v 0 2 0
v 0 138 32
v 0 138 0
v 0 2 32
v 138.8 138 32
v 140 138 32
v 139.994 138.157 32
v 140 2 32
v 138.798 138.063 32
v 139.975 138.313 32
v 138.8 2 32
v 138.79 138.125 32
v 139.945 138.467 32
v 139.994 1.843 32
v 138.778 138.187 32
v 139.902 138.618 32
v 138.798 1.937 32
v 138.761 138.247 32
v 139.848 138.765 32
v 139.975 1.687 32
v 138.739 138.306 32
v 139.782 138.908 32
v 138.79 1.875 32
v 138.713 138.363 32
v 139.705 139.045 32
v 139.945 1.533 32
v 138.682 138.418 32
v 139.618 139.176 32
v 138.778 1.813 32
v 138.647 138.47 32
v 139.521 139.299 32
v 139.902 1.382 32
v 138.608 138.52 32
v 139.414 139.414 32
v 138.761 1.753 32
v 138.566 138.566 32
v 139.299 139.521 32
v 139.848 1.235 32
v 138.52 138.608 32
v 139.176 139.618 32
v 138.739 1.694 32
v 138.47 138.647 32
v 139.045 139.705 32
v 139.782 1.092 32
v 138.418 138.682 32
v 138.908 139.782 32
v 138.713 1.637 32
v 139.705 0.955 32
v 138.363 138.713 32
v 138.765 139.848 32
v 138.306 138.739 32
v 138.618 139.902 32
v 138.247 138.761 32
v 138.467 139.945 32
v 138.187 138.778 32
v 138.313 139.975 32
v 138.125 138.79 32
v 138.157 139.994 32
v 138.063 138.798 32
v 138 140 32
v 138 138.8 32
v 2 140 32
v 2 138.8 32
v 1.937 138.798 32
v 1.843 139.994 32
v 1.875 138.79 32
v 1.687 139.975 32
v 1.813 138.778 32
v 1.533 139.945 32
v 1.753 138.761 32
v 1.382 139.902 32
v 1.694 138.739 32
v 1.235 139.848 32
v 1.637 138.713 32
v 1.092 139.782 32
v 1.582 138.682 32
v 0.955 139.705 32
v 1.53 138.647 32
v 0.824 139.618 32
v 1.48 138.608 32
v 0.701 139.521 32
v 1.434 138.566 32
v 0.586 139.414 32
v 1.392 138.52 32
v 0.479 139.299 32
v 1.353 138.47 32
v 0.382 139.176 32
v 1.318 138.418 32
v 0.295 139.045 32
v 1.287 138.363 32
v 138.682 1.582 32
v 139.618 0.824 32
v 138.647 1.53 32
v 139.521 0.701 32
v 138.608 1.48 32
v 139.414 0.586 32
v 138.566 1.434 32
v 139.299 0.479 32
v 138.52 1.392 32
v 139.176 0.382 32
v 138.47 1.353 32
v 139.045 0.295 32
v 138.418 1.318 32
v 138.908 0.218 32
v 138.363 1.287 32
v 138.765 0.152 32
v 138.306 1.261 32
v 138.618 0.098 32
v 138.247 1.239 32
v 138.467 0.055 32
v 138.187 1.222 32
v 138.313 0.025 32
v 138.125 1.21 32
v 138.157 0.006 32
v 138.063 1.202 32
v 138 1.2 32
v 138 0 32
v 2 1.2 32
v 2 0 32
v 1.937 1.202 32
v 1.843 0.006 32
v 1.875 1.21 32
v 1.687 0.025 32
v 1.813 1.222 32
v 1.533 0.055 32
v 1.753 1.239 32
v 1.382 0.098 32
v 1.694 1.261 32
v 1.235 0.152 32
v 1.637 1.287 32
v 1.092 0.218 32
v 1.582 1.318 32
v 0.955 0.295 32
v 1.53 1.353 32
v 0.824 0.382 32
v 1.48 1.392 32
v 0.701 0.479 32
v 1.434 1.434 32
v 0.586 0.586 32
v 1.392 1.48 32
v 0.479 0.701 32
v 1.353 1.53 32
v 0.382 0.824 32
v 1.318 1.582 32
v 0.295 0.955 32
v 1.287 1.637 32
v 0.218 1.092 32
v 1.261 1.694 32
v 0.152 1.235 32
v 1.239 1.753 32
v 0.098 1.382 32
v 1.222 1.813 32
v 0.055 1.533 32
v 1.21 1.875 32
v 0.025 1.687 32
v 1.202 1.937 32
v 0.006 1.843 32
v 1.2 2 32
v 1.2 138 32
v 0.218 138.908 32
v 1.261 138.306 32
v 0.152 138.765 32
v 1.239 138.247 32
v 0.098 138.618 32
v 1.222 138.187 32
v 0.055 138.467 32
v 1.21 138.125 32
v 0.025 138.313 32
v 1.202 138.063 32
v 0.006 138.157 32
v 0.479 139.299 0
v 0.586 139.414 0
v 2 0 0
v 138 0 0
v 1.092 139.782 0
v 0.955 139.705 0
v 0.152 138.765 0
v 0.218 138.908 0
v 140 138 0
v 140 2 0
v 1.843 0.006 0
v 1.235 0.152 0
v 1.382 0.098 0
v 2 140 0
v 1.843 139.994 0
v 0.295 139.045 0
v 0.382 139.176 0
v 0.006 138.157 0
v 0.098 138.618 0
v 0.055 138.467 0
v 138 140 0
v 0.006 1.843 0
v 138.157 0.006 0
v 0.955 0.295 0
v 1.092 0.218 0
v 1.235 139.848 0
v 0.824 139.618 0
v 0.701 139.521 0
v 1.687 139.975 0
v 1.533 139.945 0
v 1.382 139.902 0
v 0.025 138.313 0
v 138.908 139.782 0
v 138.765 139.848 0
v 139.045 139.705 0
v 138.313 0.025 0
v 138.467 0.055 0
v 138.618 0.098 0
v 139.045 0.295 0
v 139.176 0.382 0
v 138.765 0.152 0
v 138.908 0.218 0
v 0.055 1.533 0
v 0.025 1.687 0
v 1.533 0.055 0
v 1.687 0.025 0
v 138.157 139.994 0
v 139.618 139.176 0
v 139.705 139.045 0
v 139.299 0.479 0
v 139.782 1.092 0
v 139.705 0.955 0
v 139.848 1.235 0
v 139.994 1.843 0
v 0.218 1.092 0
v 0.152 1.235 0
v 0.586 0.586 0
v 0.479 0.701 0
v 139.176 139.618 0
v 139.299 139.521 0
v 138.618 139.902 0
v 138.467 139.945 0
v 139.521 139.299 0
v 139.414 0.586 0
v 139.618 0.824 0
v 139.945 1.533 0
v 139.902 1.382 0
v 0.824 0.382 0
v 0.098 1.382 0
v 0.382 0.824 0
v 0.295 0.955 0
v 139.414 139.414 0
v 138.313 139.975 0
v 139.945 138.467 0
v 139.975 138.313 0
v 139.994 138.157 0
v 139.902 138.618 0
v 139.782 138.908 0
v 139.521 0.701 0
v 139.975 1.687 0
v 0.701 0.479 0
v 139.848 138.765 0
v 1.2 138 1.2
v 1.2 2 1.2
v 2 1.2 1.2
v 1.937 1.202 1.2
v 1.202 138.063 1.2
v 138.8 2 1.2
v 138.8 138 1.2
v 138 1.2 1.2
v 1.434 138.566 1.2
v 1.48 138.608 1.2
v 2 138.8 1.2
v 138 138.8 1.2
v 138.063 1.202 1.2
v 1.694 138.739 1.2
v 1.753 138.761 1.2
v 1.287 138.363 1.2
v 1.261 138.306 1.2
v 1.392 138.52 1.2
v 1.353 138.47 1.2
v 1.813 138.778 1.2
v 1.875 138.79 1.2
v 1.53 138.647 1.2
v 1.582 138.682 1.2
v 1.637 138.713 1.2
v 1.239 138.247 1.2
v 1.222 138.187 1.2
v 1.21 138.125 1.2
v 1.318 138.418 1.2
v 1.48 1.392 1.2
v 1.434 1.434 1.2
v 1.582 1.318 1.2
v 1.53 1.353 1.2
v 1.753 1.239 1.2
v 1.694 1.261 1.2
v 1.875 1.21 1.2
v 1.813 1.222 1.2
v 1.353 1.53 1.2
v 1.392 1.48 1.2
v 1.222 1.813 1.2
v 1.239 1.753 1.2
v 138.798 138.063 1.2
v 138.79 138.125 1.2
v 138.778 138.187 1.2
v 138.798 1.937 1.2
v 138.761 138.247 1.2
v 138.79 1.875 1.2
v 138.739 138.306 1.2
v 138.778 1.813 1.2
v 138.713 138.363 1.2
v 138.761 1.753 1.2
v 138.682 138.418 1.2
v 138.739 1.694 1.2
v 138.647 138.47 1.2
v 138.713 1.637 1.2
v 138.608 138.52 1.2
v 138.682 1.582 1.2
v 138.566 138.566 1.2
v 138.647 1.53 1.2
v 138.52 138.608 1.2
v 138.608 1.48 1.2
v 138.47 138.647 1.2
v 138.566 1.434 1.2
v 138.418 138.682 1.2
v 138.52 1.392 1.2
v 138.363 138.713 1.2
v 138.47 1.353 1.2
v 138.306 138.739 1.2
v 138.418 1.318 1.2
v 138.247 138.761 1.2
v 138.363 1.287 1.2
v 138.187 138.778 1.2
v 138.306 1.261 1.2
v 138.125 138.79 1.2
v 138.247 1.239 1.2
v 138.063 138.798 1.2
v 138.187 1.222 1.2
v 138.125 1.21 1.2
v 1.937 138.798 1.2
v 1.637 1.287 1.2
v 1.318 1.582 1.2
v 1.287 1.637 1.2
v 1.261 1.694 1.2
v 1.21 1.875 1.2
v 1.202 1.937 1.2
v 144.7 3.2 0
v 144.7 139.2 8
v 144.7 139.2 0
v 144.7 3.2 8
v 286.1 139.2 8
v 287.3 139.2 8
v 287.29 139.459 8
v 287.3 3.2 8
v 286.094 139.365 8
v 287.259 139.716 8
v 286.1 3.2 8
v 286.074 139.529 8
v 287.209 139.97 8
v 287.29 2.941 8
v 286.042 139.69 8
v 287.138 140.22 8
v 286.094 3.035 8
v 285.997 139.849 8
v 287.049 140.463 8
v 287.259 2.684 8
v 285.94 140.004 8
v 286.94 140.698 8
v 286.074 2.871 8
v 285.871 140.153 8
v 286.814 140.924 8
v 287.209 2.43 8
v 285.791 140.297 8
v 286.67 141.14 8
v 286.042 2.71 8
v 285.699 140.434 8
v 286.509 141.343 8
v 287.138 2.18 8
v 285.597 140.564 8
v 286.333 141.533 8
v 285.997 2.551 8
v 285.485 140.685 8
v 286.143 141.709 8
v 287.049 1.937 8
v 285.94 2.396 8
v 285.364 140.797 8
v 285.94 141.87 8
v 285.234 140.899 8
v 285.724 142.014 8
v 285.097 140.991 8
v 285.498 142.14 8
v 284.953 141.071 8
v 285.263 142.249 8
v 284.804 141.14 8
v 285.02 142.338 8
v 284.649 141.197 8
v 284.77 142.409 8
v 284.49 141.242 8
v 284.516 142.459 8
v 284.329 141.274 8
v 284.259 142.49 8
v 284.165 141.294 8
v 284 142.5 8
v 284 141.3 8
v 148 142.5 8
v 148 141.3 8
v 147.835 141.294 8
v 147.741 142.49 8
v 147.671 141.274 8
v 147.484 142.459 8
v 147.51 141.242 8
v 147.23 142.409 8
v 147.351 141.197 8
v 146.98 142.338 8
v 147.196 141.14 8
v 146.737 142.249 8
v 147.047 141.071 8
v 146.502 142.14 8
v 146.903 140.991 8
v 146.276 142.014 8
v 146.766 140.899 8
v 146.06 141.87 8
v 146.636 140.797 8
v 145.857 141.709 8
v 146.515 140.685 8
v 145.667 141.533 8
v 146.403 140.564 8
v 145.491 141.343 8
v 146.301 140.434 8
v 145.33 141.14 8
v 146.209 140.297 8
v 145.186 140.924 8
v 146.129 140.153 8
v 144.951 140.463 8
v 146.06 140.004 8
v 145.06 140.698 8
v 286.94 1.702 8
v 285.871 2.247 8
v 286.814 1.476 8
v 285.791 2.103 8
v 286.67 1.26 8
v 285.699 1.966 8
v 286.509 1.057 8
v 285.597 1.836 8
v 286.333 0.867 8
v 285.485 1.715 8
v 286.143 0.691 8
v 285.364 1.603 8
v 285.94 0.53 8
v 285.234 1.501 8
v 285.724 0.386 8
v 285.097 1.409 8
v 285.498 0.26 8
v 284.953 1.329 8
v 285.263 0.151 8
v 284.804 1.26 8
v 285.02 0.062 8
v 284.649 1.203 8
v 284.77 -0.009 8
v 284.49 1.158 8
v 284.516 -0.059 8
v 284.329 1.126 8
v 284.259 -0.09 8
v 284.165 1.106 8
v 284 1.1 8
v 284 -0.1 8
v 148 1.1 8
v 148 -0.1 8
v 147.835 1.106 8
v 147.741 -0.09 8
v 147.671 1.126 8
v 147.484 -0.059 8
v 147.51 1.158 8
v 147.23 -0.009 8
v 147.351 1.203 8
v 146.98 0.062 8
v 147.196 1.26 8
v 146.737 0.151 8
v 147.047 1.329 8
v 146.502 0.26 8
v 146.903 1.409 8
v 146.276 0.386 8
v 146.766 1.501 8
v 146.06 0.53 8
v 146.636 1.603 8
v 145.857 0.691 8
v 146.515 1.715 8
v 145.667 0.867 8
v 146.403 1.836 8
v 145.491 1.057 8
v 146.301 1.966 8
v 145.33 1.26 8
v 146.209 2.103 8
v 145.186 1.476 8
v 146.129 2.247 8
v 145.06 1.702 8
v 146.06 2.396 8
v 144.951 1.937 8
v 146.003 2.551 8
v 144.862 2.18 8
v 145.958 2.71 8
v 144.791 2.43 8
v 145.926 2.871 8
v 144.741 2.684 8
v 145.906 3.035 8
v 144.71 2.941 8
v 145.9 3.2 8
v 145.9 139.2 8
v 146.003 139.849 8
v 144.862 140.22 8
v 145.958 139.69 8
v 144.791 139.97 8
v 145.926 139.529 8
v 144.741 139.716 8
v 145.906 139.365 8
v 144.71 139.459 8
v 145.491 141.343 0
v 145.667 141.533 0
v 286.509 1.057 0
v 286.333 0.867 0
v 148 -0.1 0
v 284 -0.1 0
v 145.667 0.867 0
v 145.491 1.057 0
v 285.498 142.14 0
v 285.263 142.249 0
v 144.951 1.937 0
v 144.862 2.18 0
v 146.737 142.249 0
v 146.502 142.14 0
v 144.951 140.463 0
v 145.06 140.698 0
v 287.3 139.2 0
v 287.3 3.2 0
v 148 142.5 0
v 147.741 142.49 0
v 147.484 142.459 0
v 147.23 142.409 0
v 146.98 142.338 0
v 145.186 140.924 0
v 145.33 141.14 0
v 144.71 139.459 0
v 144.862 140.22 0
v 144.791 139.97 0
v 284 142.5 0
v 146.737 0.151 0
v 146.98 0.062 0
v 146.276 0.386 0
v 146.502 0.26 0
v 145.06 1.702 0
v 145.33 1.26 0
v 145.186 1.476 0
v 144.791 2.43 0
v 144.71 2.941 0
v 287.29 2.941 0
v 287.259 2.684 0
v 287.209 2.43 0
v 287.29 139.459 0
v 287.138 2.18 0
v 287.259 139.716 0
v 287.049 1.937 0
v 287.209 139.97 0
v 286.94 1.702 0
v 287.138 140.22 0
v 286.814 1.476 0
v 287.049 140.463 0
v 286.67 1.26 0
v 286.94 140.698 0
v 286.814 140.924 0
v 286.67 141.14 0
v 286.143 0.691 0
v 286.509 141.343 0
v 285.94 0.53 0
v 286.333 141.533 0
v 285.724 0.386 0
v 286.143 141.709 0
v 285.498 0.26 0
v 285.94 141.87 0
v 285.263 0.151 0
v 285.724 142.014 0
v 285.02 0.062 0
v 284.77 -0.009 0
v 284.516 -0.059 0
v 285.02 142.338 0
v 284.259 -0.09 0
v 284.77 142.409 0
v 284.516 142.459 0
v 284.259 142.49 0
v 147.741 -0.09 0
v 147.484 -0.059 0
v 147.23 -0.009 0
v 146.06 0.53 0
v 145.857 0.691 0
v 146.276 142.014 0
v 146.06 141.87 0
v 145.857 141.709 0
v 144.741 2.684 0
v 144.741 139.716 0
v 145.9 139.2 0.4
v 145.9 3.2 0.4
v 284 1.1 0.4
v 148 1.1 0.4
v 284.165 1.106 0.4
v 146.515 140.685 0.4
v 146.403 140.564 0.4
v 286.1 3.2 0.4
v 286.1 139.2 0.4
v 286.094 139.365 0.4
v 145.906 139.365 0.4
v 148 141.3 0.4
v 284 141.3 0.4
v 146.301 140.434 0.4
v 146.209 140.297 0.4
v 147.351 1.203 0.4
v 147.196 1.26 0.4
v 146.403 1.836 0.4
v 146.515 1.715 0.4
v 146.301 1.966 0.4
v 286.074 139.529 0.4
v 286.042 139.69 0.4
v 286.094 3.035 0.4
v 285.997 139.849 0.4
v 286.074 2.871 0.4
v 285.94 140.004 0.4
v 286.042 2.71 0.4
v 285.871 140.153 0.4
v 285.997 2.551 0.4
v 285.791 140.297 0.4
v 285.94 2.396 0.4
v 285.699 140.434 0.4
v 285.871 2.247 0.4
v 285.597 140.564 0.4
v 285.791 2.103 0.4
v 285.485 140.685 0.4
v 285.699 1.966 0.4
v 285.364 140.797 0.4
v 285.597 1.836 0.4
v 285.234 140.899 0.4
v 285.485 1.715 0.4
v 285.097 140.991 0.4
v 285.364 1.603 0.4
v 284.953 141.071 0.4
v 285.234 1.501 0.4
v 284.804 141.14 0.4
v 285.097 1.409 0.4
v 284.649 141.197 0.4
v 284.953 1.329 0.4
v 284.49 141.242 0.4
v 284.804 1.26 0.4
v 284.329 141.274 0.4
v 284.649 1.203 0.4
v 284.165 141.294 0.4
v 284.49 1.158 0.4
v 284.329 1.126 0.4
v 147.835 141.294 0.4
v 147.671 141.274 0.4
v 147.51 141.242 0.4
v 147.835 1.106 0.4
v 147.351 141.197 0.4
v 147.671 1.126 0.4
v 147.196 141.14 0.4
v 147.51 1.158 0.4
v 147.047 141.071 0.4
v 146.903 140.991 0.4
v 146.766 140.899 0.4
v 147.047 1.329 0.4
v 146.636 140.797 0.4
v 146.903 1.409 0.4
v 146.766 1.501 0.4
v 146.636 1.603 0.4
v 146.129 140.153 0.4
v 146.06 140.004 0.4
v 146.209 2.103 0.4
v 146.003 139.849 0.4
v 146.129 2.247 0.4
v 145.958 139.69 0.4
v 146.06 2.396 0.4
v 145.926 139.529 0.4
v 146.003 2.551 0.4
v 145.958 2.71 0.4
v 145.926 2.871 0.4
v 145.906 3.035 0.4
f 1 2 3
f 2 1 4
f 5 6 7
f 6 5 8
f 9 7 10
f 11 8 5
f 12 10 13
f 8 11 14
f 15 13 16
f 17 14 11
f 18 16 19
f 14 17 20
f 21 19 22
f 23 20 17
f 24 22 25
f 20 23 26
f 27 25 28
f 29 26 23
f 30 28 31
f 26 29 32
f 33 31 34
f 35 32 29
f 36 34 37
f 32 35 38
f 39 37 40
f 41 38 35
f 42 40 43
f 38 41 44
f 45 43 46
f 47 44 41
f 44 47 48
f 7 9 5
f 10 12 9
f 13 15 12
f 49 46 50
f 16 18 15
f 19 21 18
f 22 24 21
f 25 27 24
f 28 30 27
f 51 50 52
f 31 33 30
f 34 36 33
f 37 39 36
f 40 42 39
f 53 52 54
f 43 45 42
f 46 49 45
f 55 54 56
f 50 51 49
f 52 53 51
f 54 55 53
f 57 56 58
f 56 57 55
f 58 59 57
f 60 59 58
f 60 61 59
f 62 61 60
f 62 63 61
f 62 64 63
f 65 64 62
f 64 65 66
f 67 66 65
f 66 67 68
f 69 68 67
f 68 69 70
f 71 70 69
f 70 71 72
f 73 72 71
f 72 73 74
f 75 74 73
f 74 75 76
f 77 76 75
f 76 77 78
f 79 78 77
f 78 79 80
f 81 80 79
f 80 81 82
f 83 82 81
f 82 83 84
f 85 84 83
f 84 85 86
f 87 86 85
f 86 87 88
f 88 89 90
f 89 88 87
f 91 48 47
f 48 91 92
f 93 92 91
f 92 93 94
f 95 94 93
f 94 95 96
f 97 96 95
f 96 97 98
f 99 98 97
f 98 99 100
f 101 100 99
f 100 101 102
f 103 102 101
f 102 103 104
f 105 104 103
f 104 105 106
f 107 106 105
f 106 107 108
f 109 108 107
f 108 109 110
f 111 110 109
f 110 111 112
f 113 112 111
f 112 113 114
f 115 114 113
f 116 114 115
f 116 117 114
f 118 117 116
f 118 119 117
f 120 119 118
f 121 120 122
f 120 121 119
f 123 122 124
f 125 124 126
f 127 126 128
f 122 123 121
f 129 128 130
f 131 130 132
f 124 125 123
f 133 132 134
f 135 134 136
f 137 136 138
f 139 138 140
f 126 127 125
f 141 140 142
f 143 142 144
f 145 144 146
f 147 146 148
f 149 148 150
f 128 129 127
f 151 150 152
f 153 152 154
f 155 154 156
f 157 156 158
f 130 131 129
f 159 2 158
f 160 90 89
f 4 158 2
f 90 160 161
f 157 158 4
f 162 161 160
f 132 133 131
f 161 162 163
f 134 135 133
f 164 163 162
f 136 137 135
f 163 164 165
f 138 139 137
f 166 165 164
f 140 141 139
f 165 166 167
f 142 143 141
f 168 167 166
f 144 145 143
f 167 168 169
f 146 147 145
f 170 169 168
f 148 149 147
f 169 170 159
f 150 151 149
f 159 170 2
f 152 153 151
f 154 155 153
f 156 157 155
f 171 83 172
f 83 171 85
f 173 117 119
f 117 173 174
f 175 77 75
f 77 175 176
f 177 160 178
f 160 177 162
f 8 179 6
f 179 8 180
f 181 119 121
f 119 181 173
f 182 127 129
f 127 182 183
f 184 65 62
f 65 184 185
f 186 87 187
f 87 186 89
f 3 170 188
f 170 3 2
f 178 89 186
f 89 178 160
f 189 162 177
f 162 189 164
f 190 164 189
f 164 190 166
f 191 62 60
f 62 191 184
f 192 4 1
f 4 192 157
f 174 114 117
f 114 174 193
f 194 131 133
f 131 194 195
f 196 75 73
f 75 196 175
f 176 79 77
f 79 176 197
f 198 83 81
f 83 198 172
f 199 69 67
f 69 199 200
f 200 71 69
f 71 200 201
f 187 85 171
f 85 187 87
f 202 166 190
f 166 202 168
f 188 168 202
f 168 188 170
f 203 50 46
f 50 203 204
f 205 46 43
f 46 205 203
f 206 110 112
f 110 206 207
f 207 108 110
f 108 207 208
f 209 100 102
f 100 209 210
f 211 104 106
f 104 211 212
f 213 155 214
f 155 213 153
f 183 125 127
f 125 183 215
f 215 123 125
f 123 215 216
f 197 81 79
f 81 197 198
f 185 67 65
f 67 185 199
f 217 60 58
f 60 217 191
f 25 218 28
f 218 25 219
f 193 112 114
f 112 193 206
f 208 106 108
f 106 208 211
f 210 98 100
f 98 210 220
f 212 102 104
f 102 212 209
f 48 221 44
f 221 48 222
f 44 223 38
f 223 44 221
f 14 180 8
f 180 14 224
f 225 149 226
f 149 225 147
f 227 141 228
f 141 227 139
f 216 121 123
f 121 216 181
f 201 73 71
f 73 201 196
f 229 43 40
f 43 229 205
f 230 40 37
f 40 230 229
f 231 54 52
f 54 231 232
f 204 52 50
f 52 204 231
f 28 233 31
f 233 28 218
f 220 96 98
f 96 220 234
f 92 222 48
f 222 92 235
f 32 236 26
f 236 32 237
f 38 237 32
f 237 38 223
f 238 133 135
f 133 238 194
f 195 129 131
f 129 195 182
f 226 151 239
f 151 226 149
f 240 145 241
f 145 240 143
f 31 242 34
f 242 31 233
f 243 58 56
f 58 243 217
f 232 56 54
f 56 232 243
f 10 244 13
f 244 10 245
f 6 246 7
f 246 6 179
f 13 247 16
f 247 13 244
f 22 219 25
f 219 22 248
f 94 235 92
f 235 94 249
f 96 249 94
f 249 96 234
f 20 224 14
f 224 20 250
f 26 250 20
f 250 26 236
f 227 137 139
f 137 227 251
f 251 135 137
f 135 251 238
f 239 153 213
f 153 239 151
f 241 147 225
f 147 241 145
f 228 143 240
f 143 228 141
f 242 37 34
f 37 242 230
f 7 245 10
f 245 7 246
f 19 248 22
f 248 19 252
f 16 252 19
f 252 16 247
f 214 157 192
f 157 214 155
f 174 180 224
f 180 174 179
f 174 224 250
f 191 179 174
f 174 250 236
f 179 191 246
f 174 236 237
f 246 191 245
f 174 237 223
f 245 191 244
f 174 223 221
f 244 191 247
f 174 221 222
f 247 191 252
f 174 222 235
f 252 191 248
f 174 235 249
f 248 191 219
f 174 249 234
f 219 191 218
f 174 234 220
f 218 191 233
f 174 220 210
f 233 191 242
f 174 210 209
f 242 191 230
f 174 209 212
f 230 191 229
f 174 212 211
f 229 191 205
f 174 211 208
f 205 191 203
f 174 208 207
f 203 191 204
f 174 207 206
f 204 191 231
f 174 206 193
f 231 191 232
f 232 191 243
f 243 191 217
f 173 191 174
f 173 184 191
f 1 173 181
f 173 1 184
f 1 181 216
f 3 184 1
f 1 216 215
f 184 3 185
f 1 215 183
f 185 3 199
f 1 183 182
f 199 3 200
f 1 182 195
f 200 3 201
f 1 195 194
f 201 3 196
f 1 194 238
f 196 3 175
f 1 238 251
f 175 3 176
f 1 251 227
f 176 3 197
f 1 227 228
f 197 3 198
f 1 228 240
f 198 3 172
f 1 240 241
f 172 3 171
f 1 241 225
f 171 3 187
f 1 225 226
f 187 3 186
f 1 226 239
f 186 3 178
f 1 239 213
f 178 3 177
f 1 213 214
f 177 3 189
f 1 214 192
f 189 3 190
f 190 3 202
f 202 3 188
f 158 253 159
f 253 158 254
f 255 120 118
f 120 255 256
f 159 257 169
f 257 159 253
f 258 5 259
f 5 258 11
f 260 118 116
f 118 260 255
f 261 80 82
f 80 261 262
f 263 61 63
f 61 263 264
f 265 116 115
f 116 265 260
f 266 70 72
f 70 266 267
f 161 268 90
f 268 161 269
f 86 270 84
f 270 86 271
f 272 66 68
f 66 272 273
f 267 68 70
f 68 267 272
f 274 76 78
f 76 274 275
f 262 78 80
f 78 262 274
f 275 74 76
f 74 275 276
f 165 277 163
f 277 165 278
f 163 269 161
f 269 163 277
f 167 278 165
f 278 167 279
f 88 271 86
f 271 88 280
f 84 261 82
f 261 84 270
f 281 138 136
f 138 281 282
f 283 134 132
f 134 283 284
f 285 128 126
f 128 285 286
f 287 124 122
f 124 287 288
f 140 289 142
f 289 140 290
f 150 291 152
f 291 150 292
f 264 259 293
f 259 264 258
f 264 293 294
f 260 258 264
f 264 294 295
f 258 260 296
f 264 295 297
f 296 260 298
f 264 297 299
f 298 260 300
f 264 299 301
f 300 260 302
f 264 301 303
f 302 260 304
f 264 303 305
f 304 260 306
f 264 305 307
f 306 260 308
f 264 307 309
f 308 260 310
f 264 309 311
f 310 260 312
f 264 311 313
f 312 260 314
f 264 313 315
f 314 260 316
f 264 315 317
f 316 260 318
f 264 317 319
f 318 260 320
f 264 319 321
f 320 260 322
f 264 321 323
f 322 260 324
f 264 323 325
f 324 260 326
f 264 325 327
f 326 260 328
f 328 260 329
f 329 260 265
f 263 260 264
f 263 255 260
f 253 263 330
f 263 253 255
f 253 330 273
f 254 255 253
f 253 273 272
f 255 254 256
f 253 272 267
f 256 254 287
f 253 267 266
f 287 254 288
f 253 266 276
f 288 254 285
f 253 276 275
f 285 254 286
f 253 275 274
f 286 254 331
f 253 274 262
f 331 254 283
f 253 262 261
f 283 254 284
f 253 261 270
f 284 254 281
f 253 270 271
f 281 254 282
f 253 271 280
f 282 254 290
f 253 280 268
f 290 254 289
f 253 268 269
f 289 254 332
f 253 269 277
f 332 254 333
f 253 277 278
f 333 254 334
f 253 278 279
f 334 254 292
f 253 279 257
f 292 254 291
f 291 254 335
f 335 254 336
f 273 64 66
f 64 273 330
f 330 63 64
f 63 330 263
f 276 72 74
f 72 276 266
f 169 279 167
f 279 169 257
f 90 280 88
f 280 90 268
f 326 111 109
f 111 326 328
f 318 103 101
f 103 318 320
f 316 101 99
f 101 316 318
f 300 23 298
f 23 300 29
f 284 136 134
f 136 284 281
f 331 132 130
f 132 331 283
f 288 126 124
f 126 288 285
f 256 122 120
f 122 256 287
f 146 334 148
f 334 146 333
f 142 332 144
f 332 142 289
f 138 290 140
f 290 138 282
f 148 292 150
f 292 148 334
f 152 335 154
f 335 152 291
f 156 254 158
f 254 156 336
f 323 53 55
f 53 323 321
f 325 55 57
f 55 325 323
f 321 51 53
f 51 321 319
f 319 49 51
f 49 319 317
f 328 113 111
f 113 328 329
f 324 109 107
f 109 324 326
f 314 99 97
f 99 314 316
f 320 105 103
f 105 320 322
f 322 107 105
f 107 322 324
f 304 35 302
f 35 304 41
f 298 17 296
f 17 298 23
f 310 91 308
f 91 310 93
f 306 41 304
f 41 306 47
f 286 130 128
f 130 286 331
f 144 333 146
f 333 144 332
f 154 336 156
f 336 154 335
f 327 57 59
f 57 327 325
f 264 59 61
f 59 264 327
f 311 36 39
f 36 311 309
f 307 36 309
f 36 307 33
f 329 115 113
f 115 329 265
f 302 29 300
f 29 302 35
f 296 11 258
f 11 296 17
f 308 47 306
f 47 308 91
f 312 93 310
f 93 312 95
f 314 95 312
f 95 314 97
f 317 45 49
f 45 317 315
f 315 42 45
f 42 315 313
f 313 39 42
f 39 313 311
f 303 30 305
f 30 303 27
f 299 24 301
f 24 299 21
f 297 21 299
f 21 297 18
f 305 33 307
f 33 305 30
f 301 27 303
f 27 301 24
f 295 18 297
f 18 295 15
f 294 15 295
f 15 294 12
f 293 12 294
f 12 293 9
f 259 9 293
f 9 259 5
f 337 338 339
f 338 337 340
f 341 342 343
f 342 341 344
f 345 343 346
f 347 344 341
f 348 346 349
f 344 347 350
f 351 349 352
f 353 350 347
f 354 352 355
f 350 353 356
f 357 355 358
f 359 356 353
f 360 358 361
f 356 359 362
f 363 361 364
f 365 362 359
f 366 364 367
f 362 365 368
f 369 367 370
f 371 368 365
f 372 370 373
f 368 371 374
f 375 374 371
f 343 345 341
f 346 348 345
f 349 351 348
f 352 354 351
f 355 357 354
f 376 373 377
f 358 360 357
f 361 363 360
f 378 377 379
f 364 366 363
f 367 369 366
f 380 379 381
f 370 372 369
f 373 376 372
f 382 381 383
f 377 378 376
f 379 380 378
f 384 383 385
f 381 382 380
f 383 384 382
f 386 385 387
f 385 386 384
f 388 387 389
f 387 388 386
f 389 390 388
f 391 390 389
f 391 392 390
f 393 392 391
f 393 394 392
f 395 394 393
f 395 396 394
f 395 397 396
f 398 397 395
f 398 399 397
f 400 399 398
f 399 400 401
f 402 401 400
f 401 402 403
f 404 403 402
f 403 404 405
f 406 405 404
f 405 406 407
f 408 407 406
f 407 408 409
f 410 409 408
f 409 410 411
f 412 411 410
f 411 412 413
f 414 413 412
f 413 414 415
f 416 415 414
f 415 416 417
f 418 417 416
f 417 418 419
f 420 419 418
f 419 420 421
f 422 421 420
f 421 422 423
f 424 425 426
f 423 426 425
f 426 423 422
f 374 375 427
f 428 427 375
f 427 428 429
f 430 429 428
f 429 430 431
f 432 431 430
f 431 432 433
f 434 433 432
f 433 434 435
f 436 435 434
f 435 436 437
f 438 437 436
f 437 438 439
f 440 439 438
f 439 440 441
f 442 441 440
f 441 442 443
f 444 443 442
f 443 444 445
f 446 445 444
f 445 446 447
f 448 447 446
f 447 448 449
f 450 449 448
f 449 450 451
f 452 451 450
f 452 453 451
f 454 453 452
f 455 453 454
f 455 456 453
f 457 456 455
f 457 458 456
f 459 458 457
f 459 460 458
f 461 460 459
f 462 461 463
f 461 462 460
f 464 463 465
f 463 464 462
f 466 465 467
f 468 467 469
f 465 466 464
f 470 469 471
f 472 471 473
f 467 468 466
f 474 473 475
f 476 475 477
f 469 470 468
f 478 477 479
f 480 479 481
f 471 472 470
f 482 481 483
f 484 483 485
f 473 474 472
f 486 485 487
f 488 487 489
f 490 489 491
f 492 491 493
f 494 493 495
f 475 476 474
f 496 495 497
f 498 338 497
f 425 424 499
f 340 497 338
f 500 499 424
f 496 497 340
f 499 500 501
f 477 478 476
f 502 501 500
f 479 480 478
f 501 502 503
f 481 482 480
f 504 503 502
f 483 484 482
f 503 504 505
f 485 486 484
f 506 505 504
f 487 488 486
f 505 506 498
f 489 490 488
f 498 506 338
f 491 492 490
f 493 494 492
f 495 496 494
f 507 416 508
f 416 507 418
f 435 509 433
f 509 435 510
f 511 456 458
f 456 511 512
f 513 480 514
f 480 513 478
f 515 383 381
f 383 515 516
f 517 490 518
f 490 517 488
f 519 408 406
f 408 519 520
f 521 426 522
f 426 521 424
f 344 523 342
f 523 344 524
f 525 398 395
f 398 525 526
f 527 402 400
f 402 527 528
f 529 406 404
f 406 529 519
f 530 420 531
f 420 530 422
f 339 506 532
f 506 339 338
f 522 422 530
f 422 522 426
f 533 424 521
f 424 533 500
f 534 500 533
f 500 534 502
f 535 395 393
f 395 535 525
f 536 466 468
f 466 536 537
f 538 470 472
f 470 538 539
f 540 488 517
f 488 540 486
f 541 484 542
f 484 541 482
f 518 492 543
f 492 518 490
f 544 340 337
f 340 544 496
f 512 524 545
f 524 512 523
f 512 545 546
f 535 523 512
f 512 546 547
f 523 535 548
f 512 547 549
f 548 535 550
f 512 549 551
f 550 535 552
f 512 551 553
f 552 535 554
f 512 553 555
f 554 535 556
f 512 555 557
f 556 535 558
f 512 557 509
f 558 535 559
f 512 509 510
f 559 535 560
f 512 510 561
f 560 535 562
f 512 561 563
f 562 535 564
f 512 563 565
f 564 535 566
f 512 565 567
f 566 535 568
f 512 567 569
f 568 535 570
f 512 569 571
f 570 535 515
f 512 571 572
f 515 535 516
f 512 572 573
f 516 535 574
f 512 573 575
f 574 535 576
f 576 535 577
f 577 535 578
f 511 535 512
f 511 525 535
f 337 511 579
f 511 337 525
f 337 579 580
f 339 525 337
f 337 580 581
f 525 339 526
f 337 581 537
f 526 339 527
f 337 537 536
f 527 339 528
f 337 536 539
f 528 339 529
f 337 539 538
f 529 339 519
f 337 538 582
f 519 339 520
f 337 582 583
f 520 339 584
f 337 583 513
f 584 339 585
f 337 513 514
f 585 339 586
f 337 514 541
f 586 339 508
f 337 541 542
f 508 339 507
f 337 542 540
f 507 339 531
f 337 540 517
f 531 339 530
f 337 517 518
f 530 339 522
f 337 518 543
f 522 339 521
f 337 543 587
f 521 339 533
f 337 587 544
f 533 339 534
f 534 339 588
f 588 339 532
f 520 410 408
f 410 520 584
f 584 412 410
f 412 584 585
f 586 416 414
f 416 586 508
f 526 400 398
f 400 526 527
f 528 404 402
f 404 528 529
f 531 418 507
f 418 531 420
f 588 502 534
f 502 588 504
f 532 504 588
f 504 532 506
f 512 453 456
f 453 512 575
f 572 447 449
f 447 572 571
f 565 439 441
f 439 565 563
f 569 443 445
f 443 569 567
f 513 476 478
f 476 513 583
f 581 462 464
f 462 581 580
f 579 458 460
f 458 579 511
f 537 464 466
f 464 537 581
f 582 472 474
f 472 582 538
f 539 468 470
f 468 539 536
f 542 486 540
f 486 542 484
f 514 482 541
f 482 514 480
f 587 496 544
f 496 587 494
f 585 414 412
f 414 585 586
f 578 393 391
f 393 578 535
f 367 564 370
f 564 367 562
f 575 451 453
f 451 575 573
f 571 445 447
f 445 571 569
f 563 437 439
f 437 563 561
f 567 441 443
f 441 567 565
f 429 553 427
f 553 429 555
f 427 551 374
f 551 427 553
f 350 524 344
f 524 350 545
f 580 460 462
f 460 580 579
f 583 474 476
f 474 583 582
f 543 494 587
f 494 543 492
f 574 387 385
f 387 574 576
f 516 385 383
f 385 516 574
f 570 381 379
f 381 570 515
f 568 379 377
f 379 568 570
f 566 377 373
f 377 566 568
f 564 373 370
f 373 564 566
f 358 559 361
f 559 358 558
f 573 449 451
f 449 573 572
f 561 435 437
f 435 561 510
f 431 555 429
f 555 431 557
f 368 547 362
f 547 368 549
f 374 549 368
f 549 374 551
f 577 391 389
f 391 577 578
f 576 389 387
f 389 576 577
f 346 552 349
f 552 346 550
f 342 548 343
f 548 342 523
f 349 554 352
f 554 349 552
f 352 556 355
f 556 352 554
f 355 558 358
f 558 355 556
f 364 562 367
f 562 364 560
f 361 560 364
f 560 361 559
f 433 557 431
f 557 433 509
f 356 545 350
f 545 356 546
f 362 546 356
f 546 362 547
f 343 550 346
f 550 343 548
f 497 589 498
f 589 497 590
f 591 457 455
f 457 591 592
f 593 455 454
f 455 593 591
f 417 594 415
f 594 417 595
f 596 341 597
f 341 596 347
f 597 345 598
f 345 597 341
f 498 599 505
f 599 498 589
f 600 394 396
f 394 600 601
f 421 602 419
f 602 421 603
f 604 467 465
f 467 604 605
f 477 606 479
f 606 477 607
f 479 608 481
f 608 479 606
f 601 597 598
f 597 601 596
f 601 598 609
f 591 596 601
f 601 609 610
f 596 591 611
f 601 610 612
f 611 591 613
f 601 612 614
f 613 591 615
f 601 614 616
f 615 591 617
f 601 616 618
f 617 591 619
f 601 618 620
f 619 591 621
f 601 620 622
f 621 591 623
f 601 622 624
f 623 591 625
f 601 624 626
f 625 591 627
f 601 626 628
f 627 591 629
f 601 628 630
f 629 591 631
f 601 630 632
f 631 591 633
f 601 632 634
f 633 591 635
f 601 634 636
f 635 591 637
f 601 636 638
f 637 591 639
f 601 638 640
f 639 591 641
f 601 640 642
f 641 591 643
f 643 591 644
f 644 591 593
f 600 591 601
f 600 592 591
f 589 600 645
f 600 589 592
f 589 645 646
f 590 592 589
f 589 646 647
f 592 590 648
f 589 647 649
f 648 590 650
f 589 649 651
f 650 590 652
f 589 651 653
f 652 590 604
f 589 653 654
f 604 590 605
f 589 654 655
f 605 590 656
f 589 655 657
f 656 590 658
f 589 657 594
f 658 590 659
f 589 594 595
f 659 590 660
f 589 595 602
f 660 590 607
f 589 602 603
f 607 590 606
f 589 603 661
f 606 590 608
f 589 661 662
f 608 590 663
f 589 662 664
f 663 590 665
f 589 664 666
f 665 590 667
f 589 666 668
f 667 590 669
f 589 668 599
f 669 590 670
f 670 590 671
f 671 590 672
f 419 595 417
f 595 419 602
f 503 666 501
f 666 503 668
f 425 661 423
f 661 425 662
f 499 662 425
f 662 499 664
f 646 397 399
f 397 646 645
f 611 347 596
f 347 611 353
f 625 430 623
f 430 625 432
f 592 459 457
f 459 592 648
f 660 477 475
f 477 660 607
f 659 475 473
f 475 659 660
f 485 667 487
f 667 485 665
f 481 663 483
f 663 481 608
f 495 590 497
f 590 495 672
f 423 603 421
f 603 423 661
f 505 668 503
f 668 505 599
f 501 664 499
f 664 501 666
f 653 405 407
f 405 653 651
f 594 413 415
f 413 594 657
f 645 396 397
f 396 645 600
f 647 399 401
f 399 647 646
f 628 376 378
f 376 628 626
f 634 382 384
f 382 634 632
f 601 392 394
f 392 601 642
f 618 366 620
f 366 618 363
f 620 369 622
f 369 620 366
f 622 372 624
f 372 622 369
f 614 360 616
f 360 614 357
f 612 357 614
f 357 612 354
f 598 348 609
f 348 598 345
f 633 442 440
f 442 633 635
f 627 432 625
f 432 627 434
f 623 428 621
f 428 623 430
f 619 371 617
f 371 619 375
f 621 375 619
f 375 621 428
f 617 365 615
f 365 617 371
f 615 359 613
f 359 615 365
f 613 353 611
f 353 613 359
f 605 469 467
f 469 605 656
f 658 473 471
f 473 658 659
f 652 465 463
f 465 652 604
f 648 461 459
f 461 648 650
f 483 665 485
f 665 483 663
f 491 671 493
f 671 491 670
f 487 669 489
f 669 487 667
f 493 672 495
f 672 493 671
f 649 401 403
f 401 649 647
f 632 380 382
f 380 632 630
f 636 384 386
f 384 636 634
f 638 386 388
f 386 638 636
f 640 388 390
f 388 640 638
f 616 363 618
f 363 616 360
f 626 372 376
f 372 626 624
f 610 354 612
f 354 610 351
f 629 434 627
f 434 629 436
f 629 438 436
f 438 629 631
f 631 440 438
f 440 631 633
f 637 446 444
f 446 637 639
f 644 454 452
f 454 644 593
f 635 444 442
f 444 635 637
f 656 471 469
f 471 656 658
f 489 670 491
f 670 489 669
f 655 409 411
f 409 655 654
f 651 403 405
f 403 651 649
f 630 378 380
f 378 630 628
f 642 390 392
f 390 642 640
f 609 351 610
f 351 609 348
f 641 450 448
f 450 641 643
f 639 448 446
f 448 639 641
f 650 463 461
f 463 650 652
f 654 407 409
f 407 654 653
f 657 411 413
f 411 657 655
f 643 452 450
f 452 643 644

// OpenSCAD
/* [Box] */
//Box height
height=32;
//Box length
length=140;
//Box width
width=140;
//Radius for corners (minimum 2)
cornerrad=2;
//Wall thickness
outwalls=1.2;
//Box thickness for floor
thickness=1.2;

/* [Box Sections] */
//Amount of sections in the length
sectionsl=0;
//Amount of sections in the width
sectionsw=0;
//Sections height
sectionsh=14;
//Inner walls thickness
inwalls=0.8;

/* [Lid] */
//Tolerance for lid
tol=0.1; 
//Lid thickness for top
lidthickness=0.4;
//Lid height
lidheight=8;

l=length-(cornerrad*2);
w=width-(cornerrad*2);

translate([cornerrad, cornerrad, 0]){
    union(){
        difference() {
            hull() {
                h = (height/2);
                translate([0,0,h]) cylinder(h=height, r=cornerrad, $fn=80, center = true);
                translate([0,l,h]) cylinder(h=height, r=cornerrad, $fn=80, center = true);
                translate([w,l,h]) cylinder(h=height, r=cornerrad, $fn=80, center = true);
                translate([w,0,h]) cylinder(h=height, r=cornerrad, $fn=80, center = true);
            }
            hull() {
                h = (height/2) + thickness;
                translate([0,0,h]) cylinder(h=height, r=cornerrad-outwalls, $fn=80, center = true);
                translate([0,l,h]) cylinder(h=height, r=cornerrad-outwalls, $fn=80, center = true);
                translate([w,l,h]) cylinder(h=height, r=cornerrad-outwalls, $fn=80, center = true);
                translate([w,0,h]) cylinder(h=height, r=cornerrad-outwalls, $fn=80, center = true);
            }
        }
        
        if( sectionsl > 0 ){
            cutl = ((length) - (outwalls*2))/sectionsl;
            for(i = [cutl : cutl : length-cutl]) {
                translate([w/2,i+outwalls-cornerrad,sectionsh/2]) cube([width,inwalls,sectionsh], center=true);
            }
        }
        
        if( sectionsw > 0 ){
            cutw = ((width) - (outwalls*2))/sectionsw;
            for(i = [cutw : cutw : width-cutw]) {
                translate([i+outwalls-cornerrad,l/2,sectionsh/2]) cube([inwalls,length,sectionsh], center=true);
            }
        }
        
    }

    translate([w + (cornerrad*2) + 6, outwalls, 0]){
        difference() {
            hull() {
                h = (lidheight/2);
                translate([0,0,h]) cylinder(h=lidheight, r=cornerrad+tol+outwalls, $fn=80, center = true);
                translate([0,l,h]) cylinder(h=lidheight, r=cornerrad+tol+outwalls, $fn=80, center = true);
                translate([w,l,h]) cylinder(h=lidheight, r=cornerrad+tol+outwalls, $fn=80, center = true);
                translate([w,0,h]) cylinder(h=lidheight, r=cornerrad+tol+outwalls, $fn=80, center = true);
            }
            
            hull() {
                h = (lidheight/2) + lidthickness;
                translate([0,0,h]) cylinder(h=lidheight, r=(cornerrad)+tol, $fn=80, center = true);
                translate([0,l,h]) cylinder(h=lidheight, r=(cornerrad)+tol, $fn=80, center = true);
                translate([w,l,h]) cylinder(h=lidheight, r=(cornerrad)+tol, $fn=80, center = true);
                translate([w,0,h]) cylinder(h=lidheight, r=(cornerrad)+tol, $fn=80, center = true);
            }
        }
    }
}
